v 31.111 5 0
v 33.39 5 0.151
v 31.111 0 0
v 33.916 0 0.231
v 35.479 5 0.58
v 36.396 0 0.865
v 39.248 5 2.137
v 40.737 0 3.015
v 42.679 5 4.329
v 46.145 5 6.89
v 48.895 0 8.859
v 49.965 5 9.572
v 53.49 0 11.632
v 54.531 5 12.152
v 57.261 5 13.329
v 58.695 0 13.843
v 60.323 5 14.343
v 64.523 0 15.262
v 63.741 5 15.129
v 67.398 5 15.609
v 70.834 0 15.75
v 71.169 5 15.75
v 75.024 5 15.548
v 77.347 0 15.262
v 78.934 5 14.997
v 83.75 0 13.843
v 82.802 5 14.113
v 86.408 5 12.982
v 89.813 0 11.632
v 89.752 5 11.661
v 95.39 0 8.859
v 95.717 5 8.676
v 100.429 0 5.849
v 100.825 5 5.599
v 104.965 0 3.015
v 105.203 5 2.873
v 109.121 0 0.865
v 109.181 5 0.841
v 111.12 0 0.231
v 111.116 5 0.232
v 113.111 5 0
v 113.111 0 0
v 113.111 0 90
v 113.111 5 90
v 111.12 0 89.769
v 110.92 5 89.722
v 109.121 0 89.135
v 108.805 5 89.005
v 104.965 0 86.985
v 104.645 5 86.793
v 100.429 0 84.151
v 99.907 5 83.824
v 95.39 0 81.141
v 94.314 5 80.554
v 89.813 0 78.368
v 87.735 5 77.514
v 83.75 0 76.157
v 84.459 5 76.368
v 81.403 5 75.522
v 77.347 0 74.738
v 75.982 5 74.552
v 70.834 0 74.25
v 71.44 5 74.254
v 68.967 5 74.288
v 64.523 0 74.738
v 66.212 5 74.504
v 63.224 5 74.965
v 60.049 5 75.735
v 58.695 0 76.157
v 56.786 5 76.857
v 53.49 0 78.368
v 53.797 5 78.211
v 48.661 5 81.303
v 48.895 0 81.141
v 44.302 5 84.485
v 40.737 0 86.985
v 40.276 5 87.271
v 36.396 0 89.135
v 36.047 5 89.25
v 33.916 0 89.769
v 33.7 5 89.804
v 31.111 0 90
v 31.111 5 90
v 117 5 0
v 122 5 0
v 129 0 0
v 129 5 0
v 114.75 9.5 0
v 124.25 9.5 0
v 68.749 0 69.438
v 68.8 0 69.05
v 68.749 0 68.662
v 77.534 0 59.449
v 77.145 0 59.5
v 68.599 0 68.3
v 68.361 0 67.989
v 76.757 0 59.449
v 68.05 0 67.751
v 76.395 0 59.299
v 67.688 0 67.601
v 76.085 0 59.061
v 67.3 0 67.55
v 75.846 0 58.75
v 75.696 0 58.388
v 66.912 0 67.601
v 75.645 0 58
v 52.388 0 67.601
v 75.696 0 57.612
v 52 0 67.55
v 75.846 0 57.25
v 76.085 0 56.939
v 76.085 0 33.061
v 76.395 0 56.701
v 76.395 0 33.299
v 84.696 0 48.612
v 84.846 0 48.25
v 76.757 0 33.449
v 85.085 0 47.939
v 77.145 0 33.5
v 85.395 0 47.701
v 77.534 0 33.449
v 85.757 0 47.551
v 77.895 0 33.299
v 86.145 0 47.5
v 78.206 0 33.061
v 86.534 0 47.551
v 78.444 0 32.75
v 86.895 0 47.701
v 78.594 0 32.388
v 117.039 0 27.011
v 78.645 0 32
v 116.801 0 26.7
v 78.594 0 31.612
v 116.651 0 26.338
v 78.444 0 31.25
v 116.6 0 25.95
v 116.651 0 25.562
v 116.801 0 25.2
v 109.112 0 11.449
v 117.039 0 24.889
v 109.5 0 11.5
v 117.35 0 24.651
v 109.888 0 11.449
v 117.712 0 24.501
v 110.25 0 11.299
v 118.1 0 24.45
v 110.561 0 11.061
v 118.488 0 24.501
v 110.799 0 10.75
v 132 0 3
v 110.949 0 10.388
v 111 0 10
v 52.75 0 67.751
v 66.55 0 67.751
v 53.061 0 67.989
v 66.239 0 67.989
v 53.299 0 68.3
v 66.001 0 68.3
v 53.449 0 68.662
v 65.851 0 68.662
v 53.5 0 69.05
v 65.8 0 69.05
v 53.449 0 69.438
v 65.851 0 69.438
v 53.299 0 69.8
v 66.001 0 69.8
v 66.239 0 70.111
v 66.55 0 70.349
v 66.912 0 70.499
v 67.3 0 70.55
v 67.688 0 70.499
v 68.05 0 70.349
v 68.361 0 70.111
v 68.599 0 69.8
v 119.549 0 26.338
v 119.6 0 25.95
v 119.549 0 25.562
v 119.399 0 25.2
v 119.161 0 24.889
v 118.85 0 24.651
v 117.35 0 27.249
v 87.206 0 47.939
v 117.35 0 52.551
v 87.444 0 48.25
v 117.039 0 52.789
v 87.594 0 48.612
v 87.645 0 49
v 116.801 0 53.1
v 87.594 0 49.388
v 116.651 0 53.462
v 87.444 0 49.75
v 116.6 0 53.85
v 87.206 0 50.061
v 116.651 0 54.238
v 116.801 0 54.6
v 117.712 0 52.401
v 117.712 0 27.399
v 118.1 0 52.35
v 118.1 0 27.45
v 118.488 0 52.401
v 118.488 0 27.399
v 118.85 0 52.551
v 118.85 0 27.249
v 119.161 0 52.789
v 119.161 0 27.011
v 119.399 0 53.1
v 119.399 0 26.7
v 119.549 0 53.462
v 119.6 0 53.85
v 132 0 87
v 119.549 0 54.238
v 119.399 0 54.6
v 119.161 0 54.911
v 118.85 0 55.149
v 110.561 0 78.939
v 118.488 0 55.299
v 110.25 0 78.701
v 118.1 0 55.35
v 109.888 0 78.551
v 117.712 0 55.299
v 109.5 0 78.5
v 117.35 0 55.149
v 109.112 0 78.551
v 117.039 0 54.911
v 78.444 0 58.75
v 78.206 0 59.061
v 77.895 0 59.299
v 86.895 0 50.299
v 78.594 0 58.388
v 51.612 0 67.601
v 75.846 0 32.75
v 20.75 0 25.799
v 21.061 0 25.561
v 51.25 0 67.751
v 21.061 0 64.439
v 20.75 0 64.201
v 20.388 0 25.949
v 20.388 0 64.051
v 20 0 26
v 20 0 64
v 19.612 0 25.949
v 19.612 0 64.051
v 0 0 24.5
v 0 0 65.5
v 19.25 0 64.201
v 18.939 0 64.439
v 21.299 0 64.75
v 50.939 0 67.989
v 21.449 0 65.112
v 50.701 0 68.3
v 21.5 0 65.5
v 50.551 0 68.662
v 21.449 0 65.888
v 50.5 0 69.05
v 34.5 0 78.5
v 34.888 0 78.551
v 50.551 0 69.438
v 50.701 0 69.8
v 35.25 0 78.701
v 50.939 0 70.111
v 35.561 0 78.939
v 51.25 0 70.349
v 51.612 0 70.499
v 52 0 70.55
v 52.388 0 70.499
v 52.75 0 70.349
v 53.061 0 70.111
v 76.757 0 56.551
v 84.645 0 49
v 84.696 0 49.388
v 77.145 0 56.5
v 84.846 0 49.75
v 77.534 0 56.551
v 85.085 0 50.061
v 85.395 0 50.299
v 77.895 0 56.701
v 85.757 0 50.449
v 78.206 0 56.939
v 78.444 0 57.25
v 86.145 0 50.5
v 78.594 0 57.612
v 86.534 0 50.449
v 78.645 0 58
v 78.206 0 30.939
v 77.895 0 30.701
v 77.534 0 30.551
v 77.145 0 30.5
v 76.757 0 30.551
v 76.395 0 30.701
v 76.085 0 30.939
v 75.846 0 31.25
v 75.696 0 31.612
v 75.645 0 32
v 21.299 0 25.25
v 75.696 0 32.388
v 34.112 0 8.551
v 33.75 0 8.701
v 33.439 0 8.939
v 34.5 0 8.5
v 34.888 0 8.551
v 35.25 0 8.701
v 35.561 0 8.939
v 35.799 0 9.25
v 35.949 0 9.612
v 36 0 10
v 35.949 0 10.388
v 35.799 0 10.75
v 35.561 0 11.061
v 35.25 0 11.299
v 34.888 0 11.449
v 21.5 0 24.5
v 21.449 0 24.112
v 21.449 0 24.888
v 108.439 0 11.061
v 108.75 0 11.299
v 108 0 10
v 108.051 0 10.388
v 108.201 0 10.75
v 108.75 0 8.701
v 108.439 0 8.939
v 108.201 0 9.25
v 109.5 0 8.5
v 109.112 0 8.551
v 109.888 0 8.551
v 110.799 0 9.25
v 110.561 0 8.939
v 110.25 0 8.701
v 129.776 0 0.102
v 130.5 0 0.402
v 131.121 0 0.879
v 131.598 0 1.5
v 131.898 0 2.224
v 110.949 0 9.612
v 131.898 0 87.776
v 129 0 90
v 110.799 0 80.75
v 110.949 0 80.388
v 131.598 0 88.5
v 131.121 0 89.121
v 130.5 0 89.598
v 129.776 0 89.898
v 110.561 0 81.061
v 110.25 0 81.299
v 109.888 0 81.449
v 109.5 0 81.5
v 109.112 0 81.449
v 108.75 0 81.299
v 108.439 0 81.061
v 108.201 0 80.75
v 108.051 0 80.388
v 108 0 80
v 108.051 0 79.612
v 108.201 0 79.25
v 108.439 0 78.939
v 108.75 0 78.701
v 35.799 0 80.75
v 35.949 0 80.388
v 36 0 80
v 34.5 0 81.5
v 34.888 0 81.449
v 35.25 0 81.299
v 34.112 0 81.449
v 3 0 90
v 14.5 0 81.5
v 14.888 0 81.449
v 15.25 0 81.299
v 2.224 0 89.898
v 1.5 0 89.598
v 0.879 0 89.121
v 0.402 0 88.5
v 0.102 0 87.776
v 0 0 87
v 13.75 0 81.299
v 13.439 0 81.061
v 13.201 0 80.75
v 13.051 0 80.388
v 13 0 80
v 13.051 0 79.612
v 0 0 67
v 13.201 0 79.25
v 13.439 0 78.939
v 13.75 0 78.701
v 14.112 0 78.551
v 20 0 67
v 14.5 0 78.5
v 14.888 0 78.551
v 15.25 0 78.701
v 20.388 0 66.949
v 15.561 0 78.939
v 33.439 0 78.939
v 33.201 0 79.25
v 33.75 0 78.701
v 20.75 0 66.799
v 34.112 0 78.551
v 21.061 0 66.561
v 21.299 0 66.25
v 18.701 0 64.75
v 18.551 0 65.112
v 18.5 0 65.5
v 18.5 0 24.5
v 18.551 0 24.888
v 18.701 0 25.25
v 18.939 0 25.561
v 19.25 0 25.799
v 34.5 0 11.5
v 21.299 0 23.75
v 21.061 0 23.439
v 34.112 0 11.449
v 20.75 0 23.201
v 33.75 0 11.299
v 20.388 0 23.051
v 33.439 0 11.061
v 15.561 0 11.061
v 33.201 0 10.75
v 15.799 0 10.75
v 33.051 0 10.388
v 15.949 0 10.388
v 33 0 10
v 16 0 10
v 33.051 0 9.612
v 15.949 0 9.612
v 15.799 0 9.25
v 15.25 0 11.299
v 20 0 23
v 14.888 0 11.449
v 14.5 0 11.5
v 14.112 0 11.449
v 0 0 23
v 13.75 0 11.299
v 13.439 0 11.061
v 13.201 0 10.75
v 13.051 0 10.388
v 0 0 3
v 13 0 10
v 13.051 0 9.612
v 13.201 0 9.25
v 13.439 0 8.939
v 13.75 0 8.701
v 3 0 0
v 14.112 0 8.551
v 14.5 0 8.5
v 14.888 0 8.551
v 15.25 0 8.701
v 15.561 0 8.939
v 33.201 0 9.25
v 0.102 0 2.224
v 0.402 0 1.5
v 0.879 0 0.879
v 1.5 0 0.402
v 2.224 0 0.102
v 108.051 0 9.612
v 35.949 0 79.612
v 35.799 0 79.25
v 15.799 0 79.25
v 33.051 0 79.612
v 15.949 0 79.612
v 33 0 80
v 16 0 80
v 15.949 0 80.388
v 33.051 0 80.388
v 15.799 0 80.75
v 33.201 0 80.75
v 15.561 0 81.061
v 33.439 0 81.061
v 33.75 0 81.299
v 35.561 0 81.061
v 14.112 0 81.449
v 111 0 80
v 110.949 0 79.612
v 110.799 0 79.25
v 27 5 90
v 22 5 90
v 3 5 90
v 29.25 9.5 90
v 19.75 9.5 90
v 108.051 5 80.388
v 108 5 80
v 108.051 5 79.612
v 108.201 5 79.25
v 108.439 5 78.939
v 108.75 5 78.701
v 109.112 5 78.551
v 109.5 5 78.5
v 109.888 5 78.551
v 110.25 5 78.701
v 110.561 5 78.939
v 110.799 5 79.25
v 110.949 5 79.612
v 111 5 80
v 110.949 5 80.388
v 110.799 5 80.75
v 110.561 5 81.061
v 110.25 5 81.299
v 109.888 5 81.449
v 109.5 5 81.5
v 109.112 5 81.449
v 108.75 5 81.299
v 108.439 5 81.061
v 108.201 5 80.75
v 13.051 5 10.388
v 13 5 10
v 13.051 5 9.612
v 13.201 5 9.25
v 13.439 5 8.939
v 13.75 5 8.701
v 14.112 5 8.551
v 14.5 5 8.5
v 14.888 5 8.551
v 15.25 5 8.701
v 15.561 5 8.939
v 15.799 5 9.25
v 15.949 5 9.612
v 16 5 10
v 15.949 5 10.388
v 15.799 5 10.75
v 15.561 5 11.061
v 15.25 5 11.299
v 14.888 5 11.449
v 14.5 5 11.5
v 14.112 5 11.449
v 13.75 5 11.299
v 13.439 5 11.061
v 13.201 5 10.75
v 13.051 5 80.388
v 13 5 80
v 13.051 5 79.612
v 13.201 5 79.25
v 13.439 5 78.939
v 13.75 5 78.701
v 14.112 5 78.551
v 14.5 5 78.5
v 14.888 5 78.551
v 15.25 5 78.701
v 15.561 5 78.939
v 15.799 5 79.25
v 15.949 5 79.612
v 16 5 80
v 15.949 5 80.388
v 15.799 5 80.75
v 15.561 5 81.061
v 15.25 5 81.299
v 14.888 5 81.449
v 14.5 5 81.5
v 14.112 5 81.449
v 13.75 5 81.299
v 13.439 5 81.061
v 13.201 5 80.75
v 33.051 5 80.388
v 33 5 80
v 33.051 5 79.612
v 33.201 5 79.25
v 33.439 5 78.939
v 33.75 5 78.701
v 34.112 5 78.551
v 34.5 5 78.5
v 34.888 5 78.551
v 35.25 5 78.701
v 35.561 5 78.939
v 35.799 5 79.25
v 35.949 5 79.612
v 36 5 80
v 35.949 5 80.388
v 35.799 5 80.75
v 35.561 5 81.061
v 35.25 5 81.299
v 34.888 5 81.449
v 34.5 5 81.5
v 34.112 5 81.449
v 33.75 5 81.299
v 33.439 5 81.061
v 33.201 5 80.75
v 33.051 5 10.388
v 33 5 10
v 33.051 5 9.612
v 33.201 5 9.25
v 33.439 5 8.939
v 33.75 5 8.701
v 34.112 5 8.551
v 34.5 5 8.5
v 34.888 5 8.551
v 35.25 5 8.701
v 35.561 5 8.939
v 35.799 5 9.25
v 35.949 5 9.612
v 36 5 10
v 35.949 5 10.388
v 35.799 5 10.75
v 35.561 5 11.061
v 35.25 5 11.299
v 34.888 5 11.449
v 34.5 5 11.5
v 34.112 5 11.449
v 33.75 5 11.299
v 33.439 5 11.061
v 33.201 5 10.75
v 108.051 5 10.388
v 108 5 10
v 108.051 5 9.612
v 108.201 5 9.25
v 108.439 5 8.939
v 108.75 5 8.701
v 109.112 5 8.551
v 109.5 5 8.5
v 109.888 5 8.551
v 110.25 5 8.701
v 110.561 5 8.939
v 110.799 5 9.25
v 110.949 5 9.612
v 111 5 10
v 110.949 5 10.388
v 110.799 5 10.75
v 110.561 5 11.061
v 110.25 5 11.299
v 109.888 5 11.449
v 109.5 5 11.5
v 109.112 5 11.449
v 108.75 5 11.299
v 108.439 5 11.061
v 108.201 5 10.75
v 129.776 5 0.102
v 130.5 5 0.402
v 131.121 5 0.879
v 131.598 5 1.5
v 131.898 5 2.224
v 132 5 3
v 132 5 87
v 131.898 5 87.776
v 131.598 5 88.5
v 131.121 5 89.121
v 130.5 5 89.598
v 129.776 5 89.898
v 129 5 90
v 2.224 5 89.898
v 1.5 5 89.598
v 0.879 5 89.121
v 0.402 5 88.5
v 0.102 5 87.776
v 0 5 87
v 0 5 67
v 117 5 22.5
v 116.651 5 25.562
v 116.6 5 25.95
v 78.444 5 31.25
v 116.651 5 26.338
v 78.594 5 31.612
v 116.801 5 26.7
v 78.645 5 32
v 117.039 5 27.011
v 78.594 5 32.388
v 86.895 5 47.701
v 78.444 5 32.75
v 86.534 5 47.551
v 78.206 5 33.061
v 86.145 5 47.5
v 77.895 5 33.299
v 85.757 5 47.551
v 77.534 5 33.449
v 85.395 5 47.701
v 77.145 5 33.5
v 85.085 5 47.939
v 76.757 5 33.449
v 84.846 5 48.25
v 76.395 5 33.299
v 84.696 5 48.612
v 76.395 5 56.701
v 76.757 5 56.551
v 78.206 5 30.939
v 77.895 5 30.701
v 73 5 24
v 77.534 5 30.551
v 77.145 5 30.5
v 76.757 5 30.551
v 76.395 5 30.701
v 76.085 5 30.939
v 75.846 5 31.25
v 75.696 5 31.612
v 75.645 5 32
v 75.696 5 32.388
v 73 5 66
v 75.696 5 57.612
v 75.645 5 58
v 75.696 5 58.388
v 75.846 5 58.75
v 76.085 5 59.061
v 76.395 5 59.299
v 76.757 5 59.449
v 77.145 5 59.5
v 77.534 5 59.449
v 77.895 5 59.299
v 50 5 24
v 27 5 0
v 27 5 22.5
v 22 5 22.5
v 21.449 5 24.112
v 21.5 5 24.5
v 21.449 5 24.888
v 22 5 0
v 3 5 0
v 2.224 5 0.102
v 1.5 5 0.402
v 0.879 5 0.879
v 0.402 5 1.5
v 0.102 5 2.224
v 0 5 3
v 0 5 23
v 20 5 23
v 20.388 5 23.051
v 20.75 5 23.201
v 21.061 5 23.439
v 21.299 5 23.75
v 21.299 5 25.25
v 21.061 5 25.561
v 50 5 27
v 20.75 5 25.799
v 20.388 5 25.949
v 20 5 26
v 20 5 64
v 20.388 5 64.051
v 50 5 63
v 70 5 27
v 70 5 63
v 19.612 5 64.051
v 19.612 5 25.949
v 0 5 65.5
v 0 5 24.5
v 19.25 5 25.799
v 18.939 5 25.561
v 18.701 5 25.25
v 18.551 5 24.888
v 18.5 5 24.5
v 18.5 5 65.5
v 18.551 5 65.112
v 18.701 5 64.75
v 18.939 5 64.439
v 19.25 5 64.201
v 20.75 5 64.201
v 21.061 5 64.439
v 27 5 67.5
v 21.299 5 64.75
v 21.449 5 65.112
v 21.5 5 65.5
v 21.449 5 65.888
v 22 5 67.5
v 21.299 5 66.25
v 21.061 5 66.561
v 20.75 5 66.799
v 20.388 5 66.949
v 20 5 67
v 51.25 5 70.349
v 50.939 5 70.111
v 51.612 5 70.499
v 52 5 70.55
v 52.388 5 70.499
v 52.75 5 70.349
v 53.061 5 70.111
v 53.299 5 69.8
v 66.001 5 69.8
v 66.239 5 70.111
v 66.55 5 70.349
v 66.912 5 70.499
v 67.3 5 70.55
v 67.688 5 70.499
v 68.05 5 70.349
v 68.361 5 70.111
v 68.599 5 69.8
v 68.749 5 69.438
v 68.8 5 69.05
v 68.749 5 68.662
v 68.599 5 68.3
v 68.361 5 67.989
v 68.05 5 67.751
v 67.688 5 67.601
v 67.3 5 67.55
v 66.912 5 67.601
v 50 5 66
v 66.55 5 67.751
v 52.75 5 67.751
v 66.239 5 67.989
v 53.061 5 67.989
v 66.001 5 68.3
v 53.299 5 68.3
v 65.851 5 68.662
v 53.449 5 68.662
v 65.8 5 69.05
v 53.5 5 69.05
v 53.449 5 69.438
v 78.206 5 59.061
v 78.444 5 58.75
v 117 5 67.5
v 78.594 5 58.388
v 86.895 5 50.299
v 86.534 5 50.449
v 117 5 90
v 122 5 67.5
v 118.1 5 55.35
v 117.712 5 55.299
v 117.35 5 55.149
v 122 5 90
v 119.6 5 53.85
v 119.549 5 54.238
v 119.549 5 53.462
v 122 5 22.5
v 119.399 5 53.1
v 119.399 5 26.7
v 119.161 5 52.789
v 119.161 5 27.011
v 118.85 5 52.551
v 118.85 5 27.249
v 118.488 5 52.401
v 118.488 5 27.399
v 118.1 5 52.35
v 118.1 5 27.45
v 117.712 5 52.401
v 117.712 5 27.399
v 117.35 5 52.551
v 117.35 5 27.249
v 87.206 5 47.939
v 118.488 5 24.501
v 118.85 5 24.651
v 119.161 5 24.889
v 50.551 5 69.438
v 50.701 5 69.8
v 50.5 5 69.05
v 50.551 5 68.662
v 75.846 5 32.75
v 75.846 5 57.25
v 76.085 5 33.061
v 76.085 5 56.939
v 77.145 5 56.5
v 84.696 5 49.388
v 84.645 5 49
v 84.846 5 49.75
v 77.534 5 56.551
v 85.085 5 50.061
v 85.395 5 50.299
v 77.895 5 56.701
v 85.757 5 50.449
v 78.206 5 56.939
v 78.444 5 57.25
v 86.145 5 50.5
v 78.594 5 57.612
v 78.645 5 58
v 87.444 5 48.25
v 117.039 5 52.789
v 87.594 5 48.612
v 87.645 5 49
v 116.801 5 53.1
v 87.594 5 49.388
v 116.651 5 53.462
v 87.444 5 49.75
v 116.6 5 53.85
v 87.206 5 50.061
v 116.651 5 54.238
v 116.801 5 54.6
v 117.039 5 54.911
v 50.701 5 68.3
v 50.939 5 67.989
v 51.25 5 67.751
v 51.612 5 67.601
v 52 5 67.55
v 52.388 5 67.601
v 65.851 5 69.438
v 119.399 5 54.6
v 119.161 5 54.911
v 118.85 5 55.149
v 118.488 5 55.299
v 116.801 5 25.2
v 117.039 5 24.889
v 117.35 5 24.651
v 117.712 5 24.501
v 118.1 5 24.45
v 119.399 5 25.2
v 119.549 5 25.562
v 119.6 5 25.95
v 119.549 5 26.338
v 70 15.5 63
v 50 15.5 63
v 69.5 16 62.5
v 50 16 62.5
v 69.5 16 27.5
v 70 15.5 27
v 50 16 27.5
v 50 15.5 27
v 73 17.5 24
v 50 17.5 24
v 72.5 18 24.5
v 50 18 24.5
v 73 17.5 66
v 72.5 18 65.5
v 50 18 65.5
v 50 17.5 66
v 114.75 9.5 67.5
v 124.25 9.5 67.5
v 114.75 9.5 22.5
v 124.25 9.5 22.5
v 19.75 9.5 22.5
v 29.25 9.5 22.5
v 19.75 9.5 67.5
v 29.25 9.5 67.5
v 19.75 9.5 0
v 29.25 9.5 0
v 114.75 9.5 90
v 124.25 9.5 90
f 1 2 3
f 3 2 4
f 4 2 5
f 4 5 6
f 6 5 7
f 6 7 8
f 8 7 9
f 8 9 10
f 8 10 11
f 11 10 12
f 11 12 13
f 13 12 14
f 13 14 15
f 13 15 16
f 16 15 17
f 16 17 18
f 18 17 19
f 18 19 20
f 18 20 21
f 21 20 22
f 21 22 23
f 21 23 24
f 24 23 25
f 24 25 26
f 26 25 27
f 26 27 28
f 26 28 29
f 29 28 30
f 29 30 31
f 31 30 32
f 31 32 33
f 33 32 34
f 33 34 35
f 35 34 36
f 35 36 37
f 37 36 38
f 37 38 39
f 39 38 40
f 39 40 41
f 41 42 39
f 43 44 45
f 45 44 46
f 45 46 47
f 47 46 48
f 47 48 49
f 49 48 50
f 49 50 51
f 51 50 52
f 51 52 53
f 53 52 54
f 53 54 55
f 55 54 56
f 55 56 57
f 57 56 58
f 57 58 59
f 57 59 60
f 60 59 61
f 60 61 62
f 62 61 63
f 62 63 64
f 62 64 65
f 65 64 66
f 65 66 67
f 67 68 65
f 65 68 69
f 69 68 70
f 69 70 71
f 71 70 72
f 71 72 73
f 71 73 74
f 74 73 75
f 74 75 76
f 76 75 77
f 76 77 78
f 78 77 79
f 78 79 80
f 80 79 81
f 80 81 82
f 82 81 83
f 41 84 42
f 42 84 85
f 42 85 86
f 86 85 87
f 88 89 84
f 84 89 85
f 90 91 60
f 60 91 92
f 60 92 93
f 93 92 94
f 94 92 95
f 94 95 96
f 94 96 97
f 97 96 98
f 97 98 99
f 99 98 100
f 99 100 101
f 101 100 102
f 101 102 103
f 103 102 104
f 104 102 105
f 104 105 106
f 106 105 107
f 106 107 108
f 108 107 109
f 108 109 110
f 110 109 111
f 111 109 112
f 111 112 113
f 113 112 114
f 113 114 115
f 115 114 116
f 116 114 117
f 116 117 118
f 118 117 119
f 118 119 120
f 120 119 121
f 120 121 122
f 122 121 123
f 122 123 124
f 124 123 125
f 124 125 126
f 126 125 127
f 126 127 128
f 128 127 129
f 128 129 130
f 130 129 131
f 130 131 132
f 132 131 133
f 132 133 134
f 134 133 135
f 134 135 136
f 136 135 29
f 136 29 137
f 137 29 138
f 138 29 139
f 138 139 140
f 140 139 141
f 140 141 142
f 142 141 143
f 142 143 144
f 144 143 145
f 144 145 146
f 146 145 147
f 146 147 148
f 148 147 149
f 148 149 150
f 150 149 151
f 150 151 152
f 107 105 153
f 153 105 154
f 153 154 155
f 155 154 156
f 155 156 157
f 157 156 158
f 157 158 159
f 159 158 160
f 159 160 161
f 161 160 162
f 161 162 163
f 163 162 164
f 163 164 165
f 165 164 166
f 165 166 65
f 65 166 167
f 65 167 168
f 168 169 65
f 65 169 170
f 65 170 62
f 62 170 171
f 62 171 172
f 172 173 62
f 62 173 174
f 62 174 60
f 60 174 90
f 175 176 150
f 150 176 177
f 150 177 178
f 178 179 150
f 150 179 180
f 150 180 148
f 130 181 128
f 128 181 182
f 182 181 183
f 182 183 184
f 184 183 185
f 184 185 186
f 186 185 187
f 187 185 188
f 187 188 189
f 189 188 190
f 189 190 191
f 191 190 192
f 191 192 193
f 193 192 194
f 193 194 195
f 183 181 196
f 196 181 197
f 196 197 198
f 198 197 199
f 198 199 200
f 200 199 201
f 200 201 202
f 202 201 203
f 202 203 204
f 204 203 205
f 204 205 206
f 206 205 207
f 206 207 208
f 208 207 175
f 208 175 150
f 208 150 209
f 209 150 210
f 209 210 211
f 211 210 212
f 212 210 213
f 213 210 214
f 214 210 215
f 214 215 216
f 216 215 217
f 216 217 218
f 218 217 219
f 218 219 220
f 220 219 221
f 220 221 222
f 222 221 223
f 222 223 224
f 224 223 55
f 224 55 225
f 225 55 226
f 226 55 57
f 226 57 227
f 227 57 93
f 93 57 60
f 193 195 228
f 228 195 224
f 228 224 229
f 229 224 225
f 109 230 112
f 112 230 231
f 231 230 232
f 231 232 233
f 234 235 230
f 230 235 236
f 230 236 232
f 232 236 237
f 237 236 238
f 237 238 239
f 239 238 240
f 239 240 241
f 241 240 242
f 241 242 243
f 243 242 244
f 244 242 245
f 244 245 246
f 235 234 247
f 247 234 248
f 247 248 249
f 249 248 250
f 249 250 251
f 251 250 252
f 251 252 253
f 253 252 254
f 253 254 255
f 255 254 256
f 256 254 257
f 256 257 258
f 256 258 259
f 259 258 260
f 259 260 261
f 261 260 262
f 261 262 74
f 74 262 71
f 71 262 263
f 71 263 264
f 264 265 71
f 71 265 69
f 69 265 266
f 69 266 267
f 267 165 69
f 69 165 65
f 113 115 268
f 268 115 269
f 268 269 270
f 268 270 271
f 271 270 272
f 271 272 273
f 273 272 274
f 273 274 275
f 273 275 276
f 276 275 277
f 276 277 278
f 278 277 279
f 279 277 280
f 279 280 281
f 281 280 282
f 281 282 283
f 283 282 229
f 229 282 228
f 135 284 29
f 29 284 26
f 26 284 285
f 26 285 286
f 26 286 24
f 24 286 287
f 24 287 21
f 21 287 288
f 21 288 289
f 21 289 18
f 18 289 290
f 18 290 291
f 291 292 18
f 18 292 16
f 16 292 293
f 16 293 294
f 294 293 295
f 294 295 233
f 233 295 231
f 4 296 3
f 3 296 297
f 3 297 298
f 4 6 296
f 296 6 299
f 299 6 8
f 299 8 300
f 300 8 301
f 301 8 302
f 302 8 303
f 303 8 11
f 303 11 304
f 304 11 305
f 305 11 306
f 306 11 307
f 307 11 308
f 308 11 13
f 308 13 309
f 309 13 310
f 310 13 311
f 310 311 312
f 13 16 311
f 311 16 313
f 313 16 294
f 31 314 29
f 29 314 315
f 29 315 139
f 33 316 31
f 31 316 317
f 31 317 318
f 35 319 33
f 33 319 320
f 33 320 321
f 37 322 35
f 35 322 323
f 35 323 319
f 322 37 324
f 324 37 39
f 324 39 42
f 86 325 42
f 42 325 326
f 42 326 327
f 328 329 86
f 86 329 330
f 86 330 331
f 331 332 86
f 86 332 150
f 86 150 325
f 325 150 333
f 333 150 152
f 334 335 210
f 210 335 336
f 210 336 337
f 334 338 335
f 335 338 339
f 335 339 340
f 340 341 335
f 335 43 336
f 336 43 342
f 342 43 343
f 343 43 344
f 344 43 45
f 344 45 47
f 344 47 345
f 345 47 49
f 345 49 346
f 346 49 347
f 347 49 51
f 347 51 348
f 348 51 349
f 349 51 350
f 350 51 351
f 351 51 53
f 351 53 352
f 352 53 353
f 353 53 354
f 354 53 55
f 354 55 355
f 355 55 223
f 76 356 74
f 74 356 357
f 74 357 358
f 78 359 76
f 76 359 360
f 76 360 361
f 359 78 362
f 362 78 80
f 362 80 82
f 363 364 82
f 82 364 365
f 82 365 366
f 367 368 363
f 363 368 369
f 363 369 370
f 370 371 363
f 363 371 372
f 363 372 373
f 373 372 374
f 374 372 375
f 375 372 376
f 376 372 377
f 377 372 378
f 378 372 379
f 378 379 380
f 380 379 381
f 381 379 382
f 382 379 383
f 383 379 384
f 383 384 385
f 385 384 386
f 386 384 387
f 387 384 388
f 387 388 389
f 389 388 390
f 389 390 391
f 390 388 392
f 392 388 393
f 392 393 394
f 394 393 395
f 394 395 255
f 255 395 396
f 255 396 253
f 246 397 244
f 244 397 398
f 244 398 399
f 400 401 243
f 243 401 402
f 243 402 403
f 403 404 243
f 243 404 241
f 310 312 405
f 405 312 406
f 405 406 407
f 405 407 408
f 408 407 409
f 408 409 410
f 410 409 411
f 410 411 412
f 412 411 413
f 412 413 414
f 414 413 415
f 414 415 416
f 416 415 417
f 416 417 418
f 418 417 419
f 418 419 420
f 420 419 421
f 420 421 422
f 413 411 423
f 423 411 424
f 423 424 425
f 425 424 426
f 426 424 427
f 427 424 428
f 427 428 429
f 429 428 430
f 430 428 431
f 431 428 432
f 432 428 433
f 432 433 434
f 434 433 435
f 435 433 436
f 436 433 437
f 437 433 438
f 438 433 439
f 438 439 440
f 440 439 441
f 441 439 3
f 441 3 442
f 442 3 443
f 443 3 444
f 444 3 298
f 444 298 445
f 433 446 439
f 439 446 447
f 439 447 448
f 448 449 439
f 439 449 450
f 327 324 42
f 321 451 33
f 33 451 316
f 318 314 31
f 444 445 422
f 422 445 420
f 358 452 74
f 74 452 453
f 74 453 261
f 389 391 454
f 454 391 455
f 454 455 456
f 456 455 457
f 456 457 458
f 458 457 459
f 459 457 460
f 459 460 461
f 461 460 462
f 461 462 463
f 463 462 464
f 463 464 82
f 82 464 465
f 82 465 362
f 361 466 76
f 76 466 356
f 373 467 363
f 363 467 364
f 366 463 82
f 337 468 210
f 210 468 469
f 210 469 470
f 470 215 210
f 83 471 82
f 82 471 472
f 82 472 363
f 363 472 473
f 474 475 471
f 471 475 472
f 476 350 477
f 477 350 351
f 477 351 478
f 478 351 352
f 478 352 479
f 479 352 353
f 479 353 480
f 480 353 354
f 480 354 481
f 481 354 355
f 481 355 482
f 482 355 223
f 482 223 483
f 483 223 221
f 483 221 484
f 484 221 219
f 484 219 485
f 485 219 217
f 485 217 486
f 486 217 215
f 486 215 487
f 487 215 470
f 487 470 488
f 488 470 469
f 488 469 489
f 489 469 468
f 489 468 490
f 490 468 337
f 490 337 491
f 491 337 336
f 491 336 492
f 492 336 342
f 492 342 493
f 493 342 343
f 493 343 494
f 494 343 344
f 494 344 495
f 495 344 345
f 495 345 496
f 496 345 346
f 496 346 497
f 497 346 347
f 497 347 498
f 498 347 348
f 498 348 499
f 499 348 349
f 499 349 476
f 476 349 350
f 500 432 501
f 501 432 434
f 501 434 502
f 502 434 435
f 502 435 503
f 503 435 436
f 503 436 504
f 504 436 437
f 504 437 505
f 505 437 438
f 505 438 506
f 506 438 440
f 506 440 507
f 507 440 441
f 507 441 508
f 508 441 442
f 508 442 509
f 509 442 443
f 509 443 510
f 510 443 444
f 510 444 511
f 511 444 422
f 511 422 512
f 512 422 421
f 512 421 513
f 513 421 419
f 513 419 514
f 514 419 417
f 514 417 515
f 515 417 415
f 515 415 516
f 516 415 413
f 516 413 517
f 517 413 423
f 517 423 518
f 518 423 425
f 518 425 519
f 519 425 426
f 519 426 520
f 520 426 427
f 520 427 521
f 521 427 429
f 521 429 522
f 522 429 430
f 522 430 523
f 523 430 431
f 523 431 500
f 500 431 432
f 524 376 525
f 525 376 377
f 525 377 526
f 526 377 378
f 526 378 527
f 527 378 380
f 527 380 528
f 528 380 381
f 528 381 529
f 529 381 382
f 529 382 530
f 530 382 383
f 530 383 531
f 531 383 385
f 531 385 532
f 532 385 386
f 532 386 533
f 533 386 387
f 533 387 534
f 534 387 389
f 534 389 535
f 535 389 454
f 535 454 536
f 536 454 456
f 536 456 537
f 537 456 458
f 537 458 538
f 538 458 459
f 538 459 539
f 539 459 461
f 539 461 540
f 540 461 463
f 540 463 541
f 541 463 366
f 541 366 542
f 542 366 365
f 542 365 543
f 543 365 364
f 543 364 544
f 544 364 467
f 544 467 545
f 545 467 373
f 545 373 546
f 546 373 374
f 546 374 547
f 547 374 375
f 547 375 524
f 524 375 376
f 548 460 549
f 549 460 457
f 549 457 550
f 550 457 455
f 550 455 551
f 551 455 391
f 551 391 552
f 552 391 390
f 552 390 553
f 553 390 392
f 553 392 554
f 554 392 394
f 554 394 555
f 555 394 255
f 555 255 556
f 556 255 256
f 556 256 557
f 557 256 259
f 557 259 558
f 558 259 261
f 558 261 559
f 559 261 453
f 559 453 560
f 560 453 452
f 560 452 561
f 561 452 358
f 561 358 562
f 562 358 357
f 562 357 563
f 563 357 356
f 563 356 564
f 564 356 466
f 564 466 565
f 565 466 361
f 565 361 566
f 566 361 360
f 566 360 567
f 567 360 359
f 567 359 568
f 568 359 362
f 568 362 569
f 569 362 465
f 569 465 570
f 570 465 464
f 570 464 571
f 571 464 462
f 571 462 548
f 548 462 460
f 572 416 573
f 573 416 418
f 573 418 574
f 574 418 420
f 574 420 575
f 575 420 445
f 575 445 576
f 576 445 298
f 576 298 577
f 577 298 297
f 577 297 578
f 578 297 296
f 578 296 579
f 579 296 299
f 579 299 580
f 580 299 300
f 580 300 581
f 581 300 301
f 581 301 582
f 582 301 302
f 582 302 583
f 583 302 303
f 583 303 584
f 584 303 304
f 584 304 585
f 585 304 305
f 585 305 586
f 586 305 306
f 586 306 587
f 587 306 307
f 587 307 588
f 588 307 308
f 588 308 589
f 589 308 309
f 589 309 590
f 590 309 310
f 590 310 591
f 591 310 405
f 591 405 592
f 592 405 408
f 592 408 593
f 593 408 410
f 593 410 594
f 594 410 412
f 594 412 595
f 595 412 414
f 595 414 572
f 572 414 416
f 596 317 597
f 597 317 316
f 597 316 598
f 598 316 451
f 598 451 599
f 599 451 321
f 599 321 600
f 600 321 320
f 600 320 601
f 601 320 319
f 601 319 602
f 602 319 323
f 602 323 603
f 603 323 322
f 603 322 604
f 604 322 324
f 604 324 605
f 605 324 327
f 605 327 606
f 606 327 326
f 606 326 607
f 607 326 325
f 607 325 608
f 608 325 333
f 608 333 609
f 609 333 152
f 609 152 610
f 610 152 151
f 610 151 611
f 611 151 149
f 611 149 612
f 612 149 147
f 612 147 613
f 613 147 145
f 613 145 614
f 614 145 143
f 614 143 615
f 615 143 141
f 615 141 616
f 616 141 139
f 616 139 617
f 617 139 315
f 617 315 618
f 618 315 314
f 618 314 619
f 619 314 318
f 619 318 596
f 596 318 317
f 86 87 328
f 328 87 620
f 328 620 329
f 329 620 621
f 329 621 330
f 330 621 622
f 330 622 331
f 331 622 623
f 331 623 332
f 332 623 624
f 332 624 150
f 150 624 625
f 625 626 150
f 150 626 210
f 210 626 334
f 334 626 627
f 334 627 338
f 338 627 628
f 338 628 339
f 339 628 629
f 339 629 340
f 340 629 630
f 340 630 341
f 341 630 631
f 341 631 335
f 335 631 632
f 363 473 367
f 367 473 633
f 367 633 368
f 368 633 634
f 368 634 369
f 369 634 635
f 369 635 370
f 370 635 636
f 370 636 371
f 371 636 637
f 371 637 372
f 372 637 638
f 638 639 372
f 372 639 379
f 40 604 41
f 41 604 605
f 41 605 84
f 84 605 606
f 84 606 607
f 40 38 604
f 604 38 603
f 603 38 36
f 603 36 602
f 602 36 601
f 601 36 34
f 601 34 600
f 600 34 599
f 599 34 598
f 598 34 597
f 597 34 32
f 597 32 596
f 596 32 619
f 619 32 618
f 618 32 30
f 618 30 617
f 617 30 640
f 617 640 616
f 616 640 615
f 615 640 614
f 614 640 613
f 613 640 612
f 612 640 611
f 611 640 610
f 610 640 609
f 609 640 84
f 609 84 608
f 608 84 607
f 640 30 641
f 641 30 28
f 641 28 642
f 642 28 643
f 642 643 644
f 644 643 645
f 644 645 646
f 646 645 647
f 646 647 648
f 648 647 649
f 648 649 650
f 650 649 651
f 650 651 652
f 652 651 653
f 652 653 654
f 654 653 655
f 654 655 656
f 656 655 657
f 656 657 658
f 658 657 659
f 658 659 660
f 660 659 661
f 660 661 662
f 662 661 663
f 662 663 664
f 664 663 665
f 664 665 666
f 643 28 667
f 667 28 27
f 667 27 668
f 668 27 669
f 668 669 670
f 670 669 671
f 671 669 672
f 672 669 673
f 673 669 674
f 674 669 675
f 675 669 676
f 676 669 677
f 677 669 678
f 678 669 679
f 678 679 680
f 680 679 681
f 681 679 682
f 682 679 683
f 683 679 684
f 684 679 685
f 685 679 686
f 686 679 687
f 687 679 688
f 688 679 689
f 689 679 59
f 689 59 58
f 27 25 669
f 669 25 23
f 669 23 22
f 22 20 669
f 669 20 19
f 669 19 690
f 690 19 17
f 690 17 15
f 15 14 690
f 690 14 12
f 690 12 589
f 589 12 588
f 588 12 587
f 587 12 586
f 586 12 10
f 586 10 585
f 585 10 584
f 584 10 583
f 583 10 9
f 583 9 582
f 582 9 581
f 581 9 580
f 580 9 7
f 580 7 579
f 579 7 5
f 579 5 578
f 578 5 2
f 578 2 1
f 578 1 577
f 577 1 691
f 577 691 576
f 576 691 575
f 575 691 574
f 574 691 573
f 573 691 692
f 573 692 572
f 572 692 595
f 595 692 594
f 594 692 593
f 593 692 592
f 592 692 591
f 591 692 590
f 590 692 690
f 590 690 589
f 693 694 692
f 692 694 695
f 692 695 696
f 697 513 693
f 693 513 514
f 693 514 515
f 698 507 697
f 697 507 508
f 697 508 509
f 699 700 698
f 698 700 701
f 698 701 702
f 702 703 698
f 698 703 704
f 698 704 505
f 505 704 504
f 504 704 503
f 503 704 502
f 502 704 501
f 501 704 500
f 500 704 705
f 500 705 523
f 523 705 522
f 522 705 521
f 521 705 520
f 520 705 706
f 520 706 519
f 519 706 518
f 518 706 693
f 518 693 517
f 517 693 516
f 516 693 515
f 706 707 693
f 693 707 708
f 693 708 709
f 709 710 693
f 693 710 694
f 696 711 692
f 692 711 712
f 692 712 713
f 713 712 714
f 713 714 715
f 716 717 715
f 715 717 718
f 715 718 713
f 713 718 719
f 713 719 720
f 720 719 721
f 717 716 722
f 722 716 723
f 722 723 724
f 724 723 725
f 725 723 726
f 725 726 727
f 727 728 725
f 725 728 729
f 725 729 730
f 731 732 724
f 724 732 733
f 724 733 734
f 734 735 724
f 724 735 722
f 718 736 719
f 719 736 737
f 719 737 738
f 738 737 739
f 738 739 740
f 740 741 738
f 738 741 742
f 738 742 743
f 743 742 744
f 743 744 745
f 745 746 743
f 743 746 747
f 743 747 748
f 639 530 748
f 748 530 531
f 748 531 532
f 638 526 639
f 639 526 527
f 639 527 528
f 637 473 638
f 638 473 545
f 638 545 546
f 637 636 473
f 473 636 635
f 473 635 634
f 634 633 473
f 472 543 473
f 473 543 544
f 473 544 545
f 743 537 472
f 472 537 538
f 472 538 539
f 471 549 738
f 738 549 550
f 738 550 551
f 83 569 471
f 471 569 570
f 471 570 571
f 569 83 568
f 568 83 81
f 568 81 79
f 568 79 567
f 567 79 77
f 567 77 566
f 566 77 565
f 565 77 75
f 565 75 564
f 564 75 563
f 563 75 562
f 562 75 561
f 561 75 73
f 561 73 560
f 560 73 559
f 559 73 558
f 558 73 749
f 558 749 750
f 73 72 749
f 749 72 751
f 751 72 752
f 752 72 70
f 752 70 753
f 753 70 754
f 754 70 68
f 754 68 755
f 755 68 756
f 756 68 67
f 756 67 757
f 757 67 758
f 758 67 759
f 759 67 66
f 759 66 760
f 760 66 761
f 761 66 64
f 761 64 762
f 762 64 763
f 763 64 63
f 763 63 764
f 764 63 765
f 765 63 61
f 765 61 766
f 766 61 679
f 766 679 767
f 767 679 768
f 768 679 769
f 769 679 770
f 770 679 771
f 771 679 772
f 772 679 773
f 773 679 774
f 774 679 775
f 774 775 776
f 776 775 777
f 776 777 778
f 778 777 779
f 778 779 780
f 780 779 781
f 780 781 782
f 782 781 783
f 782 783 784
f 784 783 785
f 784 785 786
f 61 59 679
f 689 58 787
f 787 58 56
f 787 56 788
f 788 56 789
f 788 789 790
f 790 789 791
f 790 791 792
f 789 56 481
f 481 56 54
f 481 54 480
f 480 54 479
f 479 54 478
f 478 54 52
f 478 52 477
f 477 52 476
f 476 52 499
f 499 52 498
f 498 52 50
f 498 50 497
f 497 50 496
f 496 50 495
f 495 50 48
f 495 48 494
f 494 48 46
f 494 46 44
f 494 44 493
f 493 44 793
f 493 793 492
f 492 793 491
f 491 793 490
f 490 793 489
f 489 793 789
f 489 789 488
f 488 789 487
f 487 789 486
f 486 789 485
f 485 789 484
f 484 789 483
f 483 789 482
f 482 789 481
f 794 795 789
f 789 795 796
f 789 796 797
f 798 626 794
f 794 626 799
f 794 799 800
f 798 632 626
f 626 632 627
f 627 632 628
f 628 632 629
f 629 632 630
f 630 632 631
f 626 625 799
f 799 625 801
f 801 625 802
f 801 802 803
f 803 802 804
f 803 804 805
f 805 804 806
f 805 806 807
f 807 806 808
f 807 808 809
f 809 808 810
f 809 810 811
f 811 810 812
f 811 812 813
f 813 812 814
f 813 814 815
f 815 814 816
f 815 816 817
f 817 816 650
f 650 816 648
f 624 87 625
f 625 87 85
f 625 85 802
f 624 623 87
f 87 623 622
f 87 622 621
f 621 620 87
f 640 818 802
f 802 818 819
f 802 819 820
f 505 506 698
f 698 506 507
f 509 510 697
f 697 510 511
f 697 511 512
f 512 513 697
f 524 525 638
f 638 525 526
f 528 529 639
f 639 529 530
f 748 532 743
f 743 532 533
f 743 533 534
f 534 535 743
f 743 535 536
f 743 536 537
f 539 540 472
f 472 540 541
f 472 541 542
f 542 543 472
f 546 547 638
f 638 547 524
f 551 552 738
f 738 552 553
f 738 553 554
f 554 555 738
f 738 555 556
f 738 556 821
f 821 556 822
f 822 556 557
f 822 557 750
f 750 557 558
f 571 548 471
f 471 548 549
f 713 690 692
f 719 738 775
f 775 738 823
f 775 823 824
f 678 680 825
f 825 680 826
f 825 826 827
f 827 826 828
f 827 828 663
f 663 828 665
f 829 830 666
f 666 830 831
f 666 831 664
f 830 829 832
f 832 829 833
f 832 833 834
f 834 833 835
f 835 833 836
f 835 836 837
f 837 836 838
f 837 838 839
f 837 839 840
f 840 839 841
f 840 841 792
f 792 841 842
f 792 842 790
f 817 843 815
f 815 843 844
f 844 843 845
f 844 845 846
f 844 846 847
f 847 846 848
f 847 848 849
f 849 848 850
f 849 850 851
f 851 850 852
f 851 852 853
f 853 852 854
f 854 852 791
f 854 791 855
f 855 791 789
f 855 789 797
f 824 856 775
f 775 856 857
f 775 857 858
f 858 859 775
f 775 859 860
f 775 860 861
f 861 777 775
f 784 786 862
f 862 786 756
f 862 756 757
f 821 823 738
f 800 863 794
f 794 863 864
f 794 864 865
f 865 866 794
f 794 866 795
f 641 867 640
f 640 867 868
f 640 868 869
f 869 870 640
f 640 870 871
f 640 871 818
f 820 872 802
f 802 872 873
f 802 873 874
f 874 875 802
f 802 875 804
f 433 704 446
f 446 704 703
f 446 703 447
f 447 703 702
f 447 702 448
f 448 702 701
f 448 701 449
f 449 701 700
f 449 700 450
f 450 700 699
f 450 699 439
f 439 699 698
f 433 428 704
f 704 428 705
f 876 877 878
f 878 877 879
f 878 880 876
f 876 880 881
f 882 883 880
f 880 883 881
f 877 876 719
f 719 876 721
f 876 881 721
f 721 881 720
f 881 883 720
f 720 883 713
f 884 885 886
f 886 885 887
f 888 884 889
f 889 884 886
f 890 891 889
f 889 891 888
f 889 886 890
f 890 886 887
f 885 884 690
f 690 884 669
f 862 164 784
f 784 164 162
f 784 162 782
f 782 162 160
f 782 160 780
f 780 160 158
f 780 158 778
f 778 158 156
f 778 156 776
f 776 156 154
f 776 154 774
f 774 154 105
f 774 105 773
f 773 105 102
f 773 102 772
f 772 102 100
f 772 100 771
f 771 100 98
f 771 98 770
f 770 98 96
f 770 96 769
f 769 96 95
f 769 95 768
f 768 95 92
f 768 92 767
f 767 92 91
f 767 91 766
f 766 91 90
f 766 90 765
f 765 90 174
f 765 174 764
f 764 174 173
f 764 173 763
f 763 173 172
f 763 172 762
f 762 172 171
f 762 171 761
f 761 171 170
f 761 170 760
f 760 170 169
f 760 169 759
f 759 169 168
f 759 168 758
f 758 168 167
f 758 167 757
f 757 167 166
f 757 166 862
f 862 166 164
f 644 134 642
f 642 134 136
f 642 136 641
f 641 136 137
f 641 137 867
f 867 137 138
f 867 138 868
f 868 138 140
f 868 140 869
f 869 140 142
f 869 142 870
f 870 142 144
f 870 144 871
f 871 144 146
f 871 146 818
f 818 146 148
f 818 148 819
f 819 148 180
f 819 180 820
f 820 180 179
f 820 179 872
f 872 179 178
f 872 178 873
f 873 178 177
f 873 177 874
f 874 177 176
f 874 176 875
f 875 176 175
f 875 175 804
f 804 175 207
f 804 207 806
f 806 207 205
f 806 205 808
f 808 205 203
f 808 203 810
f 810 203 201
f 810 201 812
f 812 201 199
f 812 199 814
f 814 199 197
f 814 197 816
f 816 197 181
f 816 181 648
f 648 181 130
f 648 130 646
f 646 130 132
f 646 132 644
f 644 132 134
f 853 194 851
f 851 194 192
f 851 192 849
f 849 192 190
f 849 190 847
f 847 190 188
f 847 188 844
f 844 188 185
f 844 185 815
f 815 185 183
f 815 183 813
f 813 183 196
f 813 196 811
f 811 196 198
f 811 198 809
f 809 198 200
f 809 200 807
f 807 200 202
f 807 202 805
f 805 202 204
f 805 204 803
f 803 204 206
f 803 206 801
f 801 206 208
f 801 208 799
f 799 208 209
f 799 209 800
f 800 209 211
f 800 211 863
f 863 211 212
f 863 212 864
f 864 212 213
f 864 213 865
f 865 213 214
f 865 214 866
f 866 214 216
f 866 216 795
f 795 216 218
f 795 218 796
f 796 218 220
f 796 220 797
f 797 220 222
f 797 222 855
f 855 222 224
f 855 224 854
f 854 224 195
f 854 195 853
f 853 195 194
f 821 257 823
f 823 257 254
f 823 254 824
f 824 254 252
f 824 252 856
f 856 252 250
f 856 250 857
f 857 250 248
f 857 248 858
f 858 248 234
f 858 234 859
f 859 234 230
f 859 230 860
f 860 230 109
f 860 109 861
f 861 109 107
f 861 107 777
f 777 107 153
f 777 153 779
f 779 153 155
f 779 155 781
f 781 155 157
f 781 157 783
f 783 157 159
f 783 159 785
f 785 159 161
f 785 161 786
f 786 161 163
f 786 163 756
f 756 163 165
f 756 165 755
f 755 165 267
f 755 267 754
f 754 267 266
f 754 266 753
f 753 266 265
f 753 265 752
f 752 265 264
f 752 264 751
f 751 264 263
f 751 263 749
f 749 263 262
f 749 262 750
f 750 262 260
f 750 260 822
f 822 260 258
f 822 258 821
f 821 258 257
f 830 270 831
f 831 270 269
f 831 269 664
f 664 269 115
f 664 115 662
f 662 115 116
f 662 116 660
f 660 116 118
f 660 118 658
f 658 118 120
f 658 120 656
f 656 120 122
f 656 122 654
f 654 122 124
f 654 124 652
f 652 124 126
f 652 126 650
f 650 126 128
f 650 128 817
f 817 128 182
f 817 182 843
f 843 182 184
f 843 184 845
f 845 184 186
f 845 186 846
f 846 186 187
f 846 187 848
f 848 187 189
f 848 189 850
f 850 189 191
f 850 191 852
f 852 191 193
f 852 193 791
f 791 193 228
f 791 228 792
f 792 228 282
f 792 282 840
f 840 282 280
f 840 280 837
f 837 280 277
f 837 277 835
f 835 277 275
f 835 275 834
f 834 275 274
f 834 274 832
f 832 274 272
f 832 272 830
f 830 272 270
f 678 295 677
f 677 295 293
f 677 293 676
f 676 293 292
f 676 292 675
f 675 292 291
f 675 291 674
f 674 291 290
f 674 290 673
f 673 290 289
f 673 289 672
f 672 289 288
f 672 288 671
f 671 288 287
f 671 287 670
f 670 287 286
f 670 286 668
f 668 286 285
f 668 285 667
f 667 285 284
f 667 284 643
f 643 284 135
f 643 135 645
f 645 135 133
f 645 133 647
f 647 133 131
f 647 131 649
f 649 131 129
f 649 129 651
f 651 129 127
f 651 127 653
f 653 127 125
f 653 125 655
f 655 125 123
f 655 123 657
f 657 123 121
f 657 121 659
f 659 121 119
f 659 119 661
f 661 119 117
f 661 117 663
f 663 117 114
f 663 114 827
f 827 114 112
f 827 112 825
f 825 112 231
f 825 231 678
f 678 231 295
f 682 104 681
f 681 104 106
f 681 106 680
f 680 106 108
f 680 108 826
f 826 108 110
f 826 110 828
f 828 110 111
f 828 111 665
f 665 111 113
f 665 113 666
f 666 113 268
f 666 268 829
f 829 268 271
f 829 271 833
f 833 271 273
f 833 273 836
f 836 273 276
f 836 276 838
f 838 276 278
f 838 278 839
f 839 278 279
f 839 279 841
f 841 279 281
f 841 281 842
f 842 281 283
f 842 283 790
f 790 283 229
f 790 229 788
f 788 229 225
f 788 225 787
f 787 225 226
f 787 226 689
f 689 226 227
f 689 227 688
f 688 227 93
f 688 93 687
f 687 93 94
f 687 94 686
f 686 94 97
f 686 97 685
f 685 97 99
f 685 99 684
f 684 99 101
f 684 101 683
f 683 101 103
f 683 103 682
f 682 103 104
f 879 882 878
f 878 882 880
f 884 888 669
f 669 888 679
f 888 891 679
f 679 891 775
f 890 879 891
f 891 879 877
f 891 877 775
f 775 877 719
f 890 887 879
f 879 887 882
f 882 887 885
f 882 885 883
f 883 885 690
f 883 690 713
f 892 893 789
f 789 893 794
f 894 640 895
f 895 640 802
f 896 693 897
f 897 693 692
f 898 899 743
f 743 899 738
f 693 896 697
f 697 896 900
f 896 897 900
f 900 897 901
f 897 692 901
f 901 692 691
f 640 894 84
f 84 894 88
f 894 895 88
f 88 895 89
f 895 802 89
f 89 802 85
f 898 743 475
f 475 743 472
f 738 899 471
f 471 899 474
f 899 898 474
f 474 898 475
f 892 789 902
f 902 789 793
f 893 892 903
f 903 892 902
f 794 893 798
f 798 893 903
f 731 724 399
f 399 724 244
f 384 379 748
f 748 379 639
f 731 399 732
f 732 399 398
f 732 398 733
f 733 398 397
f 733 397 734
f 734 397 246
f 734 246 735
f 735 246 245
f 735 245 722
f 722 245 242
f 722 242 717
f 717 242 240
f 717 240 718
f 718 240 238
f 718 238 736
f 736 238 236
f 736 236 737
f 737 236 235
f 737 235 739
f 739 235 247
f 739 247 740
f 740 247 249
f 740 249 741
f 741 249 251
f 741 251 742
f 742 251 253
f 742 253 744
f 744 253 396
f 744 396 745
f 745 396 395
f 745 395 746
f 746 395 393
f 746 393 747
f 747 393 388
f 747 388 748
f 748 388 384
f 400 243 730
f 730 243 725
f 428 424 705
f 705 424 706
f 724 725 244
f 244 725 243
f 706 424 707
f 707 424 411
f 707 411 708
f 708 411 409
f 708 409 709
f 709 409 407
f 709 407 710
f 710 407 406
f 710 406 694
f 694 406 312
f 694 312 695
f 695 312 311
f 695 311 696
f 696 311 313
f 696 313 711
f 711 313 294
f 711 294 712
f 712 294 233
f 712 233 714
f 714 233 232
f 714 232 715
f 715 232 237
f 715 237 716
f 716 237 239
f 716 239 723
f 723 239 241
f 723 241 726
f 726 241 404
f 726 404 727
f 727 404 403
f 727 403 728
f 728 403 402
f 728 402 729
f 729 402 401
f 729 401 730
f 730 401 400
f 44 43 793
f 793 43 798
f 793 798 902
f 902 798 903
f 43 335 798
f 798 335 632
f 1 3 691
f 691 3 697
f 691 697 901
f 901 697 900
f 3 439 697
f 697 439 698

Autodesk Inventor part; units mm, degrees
ref_plane "YZ Plane" through (0, 0, 0) normal (1, 0, 0) x (0, 1, 0)
ref_plane "XZ Plane" through (0, 0, 0) normal (0, 1, 0) x (-1, 0, 0)
ref_plane "XY Plane" through (0, 0, 0) normal (0, 0, 1) x (1, 0, 0)
sketch "Sketch1" plane through (0, 0, 0) normal (0, 1, 0) x (-1, 0, 0)
  line L0 (0, 90) -> (-132, 90)
  line L1 (-132, 90) -> (-132, 0)
  line L2 (-132, 0) -> (0, 0)
  line L3 (0, 0) -> (0, 90)
  line L4 (0, 45) -> (-132, 45)
  line L5 (0, 65.5) -> (-20, 65.5)
  line L6 (-20, 65.5) -> (-20, 67)
  line L7 (-20, 67) -> (0, 67)
  line L8 (0, 67) -> (0, 65.5)
  line L9 (0, 23) -> (-20, 23)
  line L10 (-20, 23) -> (-20, 24.5)
  line L11 (-20, 24.5) -> (0, 24.5)
  line L12 (0, 24.5) -> (0, 23)
  circle A0 centre (-20, 65.5) radius 1.5
  circle A1 centre (-20, 24.5) radius 1.5
  dimension "d0" = 132
  dimension "d1" = 90
  dimension "d2" = 20
  dimension "d3" = 41
  dimension "d4" = 1.5
  dimension "d5" = 1.5
extrude "Extrusion1" add sketch "Sketch1" along normal blind 5 contours L3 L7 A0 L5 L4 L1 L0 | L4 L3 L11 A1 L9 L2 L1
sketch "Sketch2" plane through (0, 0, 90) normal (0, 0, 1) x (1, 0, 0)
  line L0 (0, 5) -> (132, 5) projected
  line L1 (22, 5) -> (19.75, 9.5)
  line L2 (19.75, 9.5) -> (29.25, 9.5)
  line L3 (29.25, 9.5) -> (27, 5)
  line L4 (24.5, 9.5) -> (24.5, 0)
  line L5 (132, 0) -> (0, 0) projected
  line L6 (72, 0) -> (72, 13)
  line L7 (132, 0) -> (132, 5) projected
  line L8 (122, 5) -> (124.25, 9.5)
  line L9 (124.25, 9.5) -> (114.75, 9.5)
  line L10 (114.75, 9.5) -> (117, 5)
  line L11 (117, 5) -> (122, 5)
  line L12 (132, 5) -> (0, 5) projected
  dimension "d8" = 9.5
  dimension "d10" = 22
  dimension "d11" = 5
  dimension "d15" = 4.5
  dimension "d90" = 60
extrude "Extrusion7" add sketch "Sketch2" against normal up to surface (90 mm away) contours L10 L9 L8 L0 | L0 L4 L2 L3 | L0 L1 L2 L4
sketch "Sketch3" plane through (132, 0, 90) normal (1, 0, 0) x (0, 0, -1)
  line L0 (0, 0) -> (90, 0) projected
  line L1 (0, 9.5) -> (90, 9.5) projected
  line L2 (90, 5) -> (0, 5) projected
  line L3 (22.5, 9.5) -> (67.5, 9.5)
  line L4 (67.5, 9.5) -> (67.5, 5)
  line L5 (67.5, 5) -> (22.5, 5)
  line L6 (22.5, 5) -> (22.5, 9.5)
  line L7 (0, 9.5) -> (0, 5) projected
  line L8 (90, 5) -> (90, 9.5) projected
  dimension "d93" = 45
  dimension "d94" = 22.5
  dimension "d95" = 22.5
extrude "Extrusion3" cut sketch "Sketch3" against normal blind 120 contours L1 L4 L2 L6
sketch "Sketch4" plane through (0, 5, 0) normal (0, 1, 0) x (1, 0, 0)
  line L0 (50, -27) -> (70, -27)
  line L1 (70, -27) -> (70, -63)
  line L2 (70, -63) -> (50, -63)
  line L3 (50, -63) -> (50, -66)
  line L4 (50, -66) -> (73, -66)
  line L5 (73, -66) -> (73, -24)
  line L6 (73, -24) -> (50, -24)
  line L7 (50, -24) -> (50, -27)
  line L8 (132, -90) -> (132, 0) projected
  line L9 (132, -45) -> (0, -45)
  line L10 (0, -24.5) -> (0, -65.5) projected
  point P0 (0, 0)
  dimension "d25" = 3
  dimension "d26" = 70
  dimension "d27" = 3
  dimension "d28" = 20
  dimension "d29" = 36
extrude "Extrusion4" add sketch "Sketch4" along normal blind 11
sketch "Sketch5" plane through (0, 16, 0) normal (0, 1, 0) x (1, 0, 0)
  line L0 (73, -24) -> (50, -24) projected
  line L1 (50, -63) -> (50, -66) projected
  line L2 (73, -24) -> (50, -24)
  line L3 (50, -24) -> (50, -66)
  line L4 (50, -66) -> (73, -66)
  line L5 (73, -66) -> (73, -24)
  point P0 (0, 0)
extrude "Extrusion5" add sketch "Sketch5" along normal blind 2
sketch "Sketch6" plane through (0, 0, 0) normal (0, -1, 0) x (1, 0, 0)
  line L0 (67.1453, 53) -> (87.1453, 53)
  line L1 (87.1453, 53) -> (87.1453, 37)
  line L2 (87.1453, 37) -> (67.1453, 37)
  line L3 (67.1453, 37) -> (67.1453, 53)
  line L4 (0, 90) -> (132, 90) projected
  line L5 (0, 24.5) -> (0, 65.5) projected
  line L6 (0, 45) -> (132, 45)
  line L7 (132, 90) -> (132, 0) projected
  line L8 (132, 0) -> (0, 0) projected
  line L9 (77.1453, 90) -> (77.1453, 0)
  line L10 (120, 85) -> (120, 62.5) projected
  line L11 (34, 85) -> (34, 62.5) projected
  line L12 (77.1453, 37) -> (77.1453, 32)
  line L13 (77.1453, 53) -> (77.1453, 58)
  line L14 (87.1453, 49) -> (86.1453, 49)
  dimension "d34" = 20
  dimension "d35" = 16
  dimension "d41" = 5
  dimension "d42" = 5
  dimension "d84" = 4
  dimension "d86" = 43.1454
  dimension "d88" = 43.1454
  dimension "d117" = 9
hole "Hole1" at (77.1453, 0, 32) at (86.1453, 0, 49) at (77.1453, 0, 58) direction (0, 1, 0) diameter 3 depth 8 tip angle 118
sketch "Sketch7" plane through (0, 0, 0) normal (0, -1, 0) x (1, 0, 0)
  line L0 (152, 71.65) -> (52, 71.65)
  line L1 (52, 71.65) -> (52, 18.35)
  line L2 (52, 18.35) -> (152, 18.35)
  line L3 (152, 18.35) -> (152, 71.65)
  line L4 (132, 90) -> (132, 0) projected
  line L5 (132, 45) -> (0, 45)
  line L6 (0, 24.5) -> (0, 65.5) projected
  line L7 (152, 25.95) -> (118.1, 25.95)
  line L8 (152, 53.85) -> (118.1, 53.85)
  line L9 (52, 69.05) -> (67.3, 69.05)
  line L10 (50, 66) -> (73, 66) projected
  point P0 (0, 0)
  dimension "d52" = 53.3
  dimension "d53" = 100
  dimension "d54" = 20
  dimension "d55" = 66.1
  dimension "d56" = 7.6
  dimension "d57" = 33.9
  dimension "d58" = 27.9
  dimension "d81" = 50.8
  dimension "d82" = 2.6
  dimension "d83" = 15.3
  dimension "d118" = 15.2
hole "Hole2" at (118.1, 0, 25.95) at (118.1, 0, 53.85) at (67.3, 0, 69.05) at (52, 0, 69.05) direction (0, 1, 0) diameter 3 depth 8 tip angle 118
chamfer "Chamfer1" distance 0.5 angle 45 6 edges at (61.5, 18, 24) (73, 18, 45) (61.5, 18, 66) (60, 16, 27) (70, 16, 45) (60, 16, 63)
fillet "Fillet1" radius 3 4 edges at (0, 2.5, 0) (0, 2.5, 90) (132, 2.5, 90) (132, 2.5, 0)
sketch "Sketch10" plane through (0, 0, 0) normal (0, -1, 0) x (1, 0, 0)
  line L0 (29.25, 90) -> (19.75, 90) projected
  line L1 (24.5, 0) -> (24.5, 90)
  line L2 (19.75, 90) -> (19.75, 67.5) projected
  line L3 (114.75, 90) -> (124.25, 90) projected
  line L4 (119.5, 90) -> (119.5, 0)
  line L5 (129, 0) -> (3, 0) projected
  line L6 (0, 80) -> (132, 80)
  line L7 (132, 87) -> (132, 3) projected
  line L8 (0, 10) -> (132, 10)
  line L9 (3, 90) -> (129, 90) projected
  line L10 (24.5, 80) -> (14.5, 80)
  line L11 (24.5, 80) -> (34.5, 80)
  line L12 (24.5, 10) -> (14.5, 10)
  line L13 (24.5, 10) -> (34.5, 10)
  line L14 (119.5, 10) -> (109.5, 10)
  line L15 (119.5, 80) -> (109.5, 80)
  point P0 (0, 0)
  dimension "d100" = 10
  dimension "d101" = 10
  dimension "d102" = 10
  dimension "d103" = 10
  dimension "d104" = 10
  dimension "d105" = 10
  dimension "d106" = 10
  dimension "d107" = 10
hole "Hole3" at (14.5, 0, 80) at (34.5, 0, 80) at (14.5, 0, 10) at (34.5, 0, 10) at (109.5, 0, 80) at (109.5, 0, 10) direction (0, 1, 0) diameter 3 depth 8 tip angle 118
sketch "Sketch11" plane through (0, 0, 0) normal (0, -1, 0) x (1, 0, 0)
  line L0 (129, 0) -> (3, 0) projected
  line L1 (31.1108, 0) -> (43.1108, 0) construction
  line L2 (43.1108, 0) -> (49, 21) construction
  line L3 (49, 21) -> (90.4829, 21) construction
  line L4 (90.4829, 21) -> (105.1108, 0) construction
  line L5 (105.1108, 0) -> (113.1108, 0) construction
  spline S0 degree 4 poles (31.1108, 0) (43.1108, 0) (49, 21) (90.4829, 21) (105.1108, 0) (113.1108, 0) knots 1 1 1 1 1 2 3 3 3 3 3
  line L6 (132, 87) -> (132, 3) projected
  line L7 (132, 45) -> (0, 45)
  line L8 (0, 24.5) -> (0, 65.5) projected
  line L9 (31.1108, 90) -> (43.1108, 90) construction
  line L10 (43.1108, 90) -> (49, 69) construction
  line L11 (49, 69) -> (90.4829, 69) construction
  line L12 (90.4829, 69) -> (105.1108, 90) construction
  line L13 (105.1108, 90) -> (113.1108, 90) construction
  spline S1 degree 4 poles (31.1108, 90) (43.1108, 90) (49, 69) (90.4829, 69) (105.1108, 90) (113.1108, 90) knots 1 1 1 1 1 2 3 3 3 3 3
  line L14 (3, 90) -> (129, 90) projected
  line L15 (27, 90) -> (117, 90) projected
  line L16 (31.1108, 90) -> (113.1108, 90)
  point P0 (0, 0)
extrude "Extrusion8" cut sketch "Sketch11" against normal blind 10
equation "\"d5\" = d4"
properties part number "one_part_body_V2"
